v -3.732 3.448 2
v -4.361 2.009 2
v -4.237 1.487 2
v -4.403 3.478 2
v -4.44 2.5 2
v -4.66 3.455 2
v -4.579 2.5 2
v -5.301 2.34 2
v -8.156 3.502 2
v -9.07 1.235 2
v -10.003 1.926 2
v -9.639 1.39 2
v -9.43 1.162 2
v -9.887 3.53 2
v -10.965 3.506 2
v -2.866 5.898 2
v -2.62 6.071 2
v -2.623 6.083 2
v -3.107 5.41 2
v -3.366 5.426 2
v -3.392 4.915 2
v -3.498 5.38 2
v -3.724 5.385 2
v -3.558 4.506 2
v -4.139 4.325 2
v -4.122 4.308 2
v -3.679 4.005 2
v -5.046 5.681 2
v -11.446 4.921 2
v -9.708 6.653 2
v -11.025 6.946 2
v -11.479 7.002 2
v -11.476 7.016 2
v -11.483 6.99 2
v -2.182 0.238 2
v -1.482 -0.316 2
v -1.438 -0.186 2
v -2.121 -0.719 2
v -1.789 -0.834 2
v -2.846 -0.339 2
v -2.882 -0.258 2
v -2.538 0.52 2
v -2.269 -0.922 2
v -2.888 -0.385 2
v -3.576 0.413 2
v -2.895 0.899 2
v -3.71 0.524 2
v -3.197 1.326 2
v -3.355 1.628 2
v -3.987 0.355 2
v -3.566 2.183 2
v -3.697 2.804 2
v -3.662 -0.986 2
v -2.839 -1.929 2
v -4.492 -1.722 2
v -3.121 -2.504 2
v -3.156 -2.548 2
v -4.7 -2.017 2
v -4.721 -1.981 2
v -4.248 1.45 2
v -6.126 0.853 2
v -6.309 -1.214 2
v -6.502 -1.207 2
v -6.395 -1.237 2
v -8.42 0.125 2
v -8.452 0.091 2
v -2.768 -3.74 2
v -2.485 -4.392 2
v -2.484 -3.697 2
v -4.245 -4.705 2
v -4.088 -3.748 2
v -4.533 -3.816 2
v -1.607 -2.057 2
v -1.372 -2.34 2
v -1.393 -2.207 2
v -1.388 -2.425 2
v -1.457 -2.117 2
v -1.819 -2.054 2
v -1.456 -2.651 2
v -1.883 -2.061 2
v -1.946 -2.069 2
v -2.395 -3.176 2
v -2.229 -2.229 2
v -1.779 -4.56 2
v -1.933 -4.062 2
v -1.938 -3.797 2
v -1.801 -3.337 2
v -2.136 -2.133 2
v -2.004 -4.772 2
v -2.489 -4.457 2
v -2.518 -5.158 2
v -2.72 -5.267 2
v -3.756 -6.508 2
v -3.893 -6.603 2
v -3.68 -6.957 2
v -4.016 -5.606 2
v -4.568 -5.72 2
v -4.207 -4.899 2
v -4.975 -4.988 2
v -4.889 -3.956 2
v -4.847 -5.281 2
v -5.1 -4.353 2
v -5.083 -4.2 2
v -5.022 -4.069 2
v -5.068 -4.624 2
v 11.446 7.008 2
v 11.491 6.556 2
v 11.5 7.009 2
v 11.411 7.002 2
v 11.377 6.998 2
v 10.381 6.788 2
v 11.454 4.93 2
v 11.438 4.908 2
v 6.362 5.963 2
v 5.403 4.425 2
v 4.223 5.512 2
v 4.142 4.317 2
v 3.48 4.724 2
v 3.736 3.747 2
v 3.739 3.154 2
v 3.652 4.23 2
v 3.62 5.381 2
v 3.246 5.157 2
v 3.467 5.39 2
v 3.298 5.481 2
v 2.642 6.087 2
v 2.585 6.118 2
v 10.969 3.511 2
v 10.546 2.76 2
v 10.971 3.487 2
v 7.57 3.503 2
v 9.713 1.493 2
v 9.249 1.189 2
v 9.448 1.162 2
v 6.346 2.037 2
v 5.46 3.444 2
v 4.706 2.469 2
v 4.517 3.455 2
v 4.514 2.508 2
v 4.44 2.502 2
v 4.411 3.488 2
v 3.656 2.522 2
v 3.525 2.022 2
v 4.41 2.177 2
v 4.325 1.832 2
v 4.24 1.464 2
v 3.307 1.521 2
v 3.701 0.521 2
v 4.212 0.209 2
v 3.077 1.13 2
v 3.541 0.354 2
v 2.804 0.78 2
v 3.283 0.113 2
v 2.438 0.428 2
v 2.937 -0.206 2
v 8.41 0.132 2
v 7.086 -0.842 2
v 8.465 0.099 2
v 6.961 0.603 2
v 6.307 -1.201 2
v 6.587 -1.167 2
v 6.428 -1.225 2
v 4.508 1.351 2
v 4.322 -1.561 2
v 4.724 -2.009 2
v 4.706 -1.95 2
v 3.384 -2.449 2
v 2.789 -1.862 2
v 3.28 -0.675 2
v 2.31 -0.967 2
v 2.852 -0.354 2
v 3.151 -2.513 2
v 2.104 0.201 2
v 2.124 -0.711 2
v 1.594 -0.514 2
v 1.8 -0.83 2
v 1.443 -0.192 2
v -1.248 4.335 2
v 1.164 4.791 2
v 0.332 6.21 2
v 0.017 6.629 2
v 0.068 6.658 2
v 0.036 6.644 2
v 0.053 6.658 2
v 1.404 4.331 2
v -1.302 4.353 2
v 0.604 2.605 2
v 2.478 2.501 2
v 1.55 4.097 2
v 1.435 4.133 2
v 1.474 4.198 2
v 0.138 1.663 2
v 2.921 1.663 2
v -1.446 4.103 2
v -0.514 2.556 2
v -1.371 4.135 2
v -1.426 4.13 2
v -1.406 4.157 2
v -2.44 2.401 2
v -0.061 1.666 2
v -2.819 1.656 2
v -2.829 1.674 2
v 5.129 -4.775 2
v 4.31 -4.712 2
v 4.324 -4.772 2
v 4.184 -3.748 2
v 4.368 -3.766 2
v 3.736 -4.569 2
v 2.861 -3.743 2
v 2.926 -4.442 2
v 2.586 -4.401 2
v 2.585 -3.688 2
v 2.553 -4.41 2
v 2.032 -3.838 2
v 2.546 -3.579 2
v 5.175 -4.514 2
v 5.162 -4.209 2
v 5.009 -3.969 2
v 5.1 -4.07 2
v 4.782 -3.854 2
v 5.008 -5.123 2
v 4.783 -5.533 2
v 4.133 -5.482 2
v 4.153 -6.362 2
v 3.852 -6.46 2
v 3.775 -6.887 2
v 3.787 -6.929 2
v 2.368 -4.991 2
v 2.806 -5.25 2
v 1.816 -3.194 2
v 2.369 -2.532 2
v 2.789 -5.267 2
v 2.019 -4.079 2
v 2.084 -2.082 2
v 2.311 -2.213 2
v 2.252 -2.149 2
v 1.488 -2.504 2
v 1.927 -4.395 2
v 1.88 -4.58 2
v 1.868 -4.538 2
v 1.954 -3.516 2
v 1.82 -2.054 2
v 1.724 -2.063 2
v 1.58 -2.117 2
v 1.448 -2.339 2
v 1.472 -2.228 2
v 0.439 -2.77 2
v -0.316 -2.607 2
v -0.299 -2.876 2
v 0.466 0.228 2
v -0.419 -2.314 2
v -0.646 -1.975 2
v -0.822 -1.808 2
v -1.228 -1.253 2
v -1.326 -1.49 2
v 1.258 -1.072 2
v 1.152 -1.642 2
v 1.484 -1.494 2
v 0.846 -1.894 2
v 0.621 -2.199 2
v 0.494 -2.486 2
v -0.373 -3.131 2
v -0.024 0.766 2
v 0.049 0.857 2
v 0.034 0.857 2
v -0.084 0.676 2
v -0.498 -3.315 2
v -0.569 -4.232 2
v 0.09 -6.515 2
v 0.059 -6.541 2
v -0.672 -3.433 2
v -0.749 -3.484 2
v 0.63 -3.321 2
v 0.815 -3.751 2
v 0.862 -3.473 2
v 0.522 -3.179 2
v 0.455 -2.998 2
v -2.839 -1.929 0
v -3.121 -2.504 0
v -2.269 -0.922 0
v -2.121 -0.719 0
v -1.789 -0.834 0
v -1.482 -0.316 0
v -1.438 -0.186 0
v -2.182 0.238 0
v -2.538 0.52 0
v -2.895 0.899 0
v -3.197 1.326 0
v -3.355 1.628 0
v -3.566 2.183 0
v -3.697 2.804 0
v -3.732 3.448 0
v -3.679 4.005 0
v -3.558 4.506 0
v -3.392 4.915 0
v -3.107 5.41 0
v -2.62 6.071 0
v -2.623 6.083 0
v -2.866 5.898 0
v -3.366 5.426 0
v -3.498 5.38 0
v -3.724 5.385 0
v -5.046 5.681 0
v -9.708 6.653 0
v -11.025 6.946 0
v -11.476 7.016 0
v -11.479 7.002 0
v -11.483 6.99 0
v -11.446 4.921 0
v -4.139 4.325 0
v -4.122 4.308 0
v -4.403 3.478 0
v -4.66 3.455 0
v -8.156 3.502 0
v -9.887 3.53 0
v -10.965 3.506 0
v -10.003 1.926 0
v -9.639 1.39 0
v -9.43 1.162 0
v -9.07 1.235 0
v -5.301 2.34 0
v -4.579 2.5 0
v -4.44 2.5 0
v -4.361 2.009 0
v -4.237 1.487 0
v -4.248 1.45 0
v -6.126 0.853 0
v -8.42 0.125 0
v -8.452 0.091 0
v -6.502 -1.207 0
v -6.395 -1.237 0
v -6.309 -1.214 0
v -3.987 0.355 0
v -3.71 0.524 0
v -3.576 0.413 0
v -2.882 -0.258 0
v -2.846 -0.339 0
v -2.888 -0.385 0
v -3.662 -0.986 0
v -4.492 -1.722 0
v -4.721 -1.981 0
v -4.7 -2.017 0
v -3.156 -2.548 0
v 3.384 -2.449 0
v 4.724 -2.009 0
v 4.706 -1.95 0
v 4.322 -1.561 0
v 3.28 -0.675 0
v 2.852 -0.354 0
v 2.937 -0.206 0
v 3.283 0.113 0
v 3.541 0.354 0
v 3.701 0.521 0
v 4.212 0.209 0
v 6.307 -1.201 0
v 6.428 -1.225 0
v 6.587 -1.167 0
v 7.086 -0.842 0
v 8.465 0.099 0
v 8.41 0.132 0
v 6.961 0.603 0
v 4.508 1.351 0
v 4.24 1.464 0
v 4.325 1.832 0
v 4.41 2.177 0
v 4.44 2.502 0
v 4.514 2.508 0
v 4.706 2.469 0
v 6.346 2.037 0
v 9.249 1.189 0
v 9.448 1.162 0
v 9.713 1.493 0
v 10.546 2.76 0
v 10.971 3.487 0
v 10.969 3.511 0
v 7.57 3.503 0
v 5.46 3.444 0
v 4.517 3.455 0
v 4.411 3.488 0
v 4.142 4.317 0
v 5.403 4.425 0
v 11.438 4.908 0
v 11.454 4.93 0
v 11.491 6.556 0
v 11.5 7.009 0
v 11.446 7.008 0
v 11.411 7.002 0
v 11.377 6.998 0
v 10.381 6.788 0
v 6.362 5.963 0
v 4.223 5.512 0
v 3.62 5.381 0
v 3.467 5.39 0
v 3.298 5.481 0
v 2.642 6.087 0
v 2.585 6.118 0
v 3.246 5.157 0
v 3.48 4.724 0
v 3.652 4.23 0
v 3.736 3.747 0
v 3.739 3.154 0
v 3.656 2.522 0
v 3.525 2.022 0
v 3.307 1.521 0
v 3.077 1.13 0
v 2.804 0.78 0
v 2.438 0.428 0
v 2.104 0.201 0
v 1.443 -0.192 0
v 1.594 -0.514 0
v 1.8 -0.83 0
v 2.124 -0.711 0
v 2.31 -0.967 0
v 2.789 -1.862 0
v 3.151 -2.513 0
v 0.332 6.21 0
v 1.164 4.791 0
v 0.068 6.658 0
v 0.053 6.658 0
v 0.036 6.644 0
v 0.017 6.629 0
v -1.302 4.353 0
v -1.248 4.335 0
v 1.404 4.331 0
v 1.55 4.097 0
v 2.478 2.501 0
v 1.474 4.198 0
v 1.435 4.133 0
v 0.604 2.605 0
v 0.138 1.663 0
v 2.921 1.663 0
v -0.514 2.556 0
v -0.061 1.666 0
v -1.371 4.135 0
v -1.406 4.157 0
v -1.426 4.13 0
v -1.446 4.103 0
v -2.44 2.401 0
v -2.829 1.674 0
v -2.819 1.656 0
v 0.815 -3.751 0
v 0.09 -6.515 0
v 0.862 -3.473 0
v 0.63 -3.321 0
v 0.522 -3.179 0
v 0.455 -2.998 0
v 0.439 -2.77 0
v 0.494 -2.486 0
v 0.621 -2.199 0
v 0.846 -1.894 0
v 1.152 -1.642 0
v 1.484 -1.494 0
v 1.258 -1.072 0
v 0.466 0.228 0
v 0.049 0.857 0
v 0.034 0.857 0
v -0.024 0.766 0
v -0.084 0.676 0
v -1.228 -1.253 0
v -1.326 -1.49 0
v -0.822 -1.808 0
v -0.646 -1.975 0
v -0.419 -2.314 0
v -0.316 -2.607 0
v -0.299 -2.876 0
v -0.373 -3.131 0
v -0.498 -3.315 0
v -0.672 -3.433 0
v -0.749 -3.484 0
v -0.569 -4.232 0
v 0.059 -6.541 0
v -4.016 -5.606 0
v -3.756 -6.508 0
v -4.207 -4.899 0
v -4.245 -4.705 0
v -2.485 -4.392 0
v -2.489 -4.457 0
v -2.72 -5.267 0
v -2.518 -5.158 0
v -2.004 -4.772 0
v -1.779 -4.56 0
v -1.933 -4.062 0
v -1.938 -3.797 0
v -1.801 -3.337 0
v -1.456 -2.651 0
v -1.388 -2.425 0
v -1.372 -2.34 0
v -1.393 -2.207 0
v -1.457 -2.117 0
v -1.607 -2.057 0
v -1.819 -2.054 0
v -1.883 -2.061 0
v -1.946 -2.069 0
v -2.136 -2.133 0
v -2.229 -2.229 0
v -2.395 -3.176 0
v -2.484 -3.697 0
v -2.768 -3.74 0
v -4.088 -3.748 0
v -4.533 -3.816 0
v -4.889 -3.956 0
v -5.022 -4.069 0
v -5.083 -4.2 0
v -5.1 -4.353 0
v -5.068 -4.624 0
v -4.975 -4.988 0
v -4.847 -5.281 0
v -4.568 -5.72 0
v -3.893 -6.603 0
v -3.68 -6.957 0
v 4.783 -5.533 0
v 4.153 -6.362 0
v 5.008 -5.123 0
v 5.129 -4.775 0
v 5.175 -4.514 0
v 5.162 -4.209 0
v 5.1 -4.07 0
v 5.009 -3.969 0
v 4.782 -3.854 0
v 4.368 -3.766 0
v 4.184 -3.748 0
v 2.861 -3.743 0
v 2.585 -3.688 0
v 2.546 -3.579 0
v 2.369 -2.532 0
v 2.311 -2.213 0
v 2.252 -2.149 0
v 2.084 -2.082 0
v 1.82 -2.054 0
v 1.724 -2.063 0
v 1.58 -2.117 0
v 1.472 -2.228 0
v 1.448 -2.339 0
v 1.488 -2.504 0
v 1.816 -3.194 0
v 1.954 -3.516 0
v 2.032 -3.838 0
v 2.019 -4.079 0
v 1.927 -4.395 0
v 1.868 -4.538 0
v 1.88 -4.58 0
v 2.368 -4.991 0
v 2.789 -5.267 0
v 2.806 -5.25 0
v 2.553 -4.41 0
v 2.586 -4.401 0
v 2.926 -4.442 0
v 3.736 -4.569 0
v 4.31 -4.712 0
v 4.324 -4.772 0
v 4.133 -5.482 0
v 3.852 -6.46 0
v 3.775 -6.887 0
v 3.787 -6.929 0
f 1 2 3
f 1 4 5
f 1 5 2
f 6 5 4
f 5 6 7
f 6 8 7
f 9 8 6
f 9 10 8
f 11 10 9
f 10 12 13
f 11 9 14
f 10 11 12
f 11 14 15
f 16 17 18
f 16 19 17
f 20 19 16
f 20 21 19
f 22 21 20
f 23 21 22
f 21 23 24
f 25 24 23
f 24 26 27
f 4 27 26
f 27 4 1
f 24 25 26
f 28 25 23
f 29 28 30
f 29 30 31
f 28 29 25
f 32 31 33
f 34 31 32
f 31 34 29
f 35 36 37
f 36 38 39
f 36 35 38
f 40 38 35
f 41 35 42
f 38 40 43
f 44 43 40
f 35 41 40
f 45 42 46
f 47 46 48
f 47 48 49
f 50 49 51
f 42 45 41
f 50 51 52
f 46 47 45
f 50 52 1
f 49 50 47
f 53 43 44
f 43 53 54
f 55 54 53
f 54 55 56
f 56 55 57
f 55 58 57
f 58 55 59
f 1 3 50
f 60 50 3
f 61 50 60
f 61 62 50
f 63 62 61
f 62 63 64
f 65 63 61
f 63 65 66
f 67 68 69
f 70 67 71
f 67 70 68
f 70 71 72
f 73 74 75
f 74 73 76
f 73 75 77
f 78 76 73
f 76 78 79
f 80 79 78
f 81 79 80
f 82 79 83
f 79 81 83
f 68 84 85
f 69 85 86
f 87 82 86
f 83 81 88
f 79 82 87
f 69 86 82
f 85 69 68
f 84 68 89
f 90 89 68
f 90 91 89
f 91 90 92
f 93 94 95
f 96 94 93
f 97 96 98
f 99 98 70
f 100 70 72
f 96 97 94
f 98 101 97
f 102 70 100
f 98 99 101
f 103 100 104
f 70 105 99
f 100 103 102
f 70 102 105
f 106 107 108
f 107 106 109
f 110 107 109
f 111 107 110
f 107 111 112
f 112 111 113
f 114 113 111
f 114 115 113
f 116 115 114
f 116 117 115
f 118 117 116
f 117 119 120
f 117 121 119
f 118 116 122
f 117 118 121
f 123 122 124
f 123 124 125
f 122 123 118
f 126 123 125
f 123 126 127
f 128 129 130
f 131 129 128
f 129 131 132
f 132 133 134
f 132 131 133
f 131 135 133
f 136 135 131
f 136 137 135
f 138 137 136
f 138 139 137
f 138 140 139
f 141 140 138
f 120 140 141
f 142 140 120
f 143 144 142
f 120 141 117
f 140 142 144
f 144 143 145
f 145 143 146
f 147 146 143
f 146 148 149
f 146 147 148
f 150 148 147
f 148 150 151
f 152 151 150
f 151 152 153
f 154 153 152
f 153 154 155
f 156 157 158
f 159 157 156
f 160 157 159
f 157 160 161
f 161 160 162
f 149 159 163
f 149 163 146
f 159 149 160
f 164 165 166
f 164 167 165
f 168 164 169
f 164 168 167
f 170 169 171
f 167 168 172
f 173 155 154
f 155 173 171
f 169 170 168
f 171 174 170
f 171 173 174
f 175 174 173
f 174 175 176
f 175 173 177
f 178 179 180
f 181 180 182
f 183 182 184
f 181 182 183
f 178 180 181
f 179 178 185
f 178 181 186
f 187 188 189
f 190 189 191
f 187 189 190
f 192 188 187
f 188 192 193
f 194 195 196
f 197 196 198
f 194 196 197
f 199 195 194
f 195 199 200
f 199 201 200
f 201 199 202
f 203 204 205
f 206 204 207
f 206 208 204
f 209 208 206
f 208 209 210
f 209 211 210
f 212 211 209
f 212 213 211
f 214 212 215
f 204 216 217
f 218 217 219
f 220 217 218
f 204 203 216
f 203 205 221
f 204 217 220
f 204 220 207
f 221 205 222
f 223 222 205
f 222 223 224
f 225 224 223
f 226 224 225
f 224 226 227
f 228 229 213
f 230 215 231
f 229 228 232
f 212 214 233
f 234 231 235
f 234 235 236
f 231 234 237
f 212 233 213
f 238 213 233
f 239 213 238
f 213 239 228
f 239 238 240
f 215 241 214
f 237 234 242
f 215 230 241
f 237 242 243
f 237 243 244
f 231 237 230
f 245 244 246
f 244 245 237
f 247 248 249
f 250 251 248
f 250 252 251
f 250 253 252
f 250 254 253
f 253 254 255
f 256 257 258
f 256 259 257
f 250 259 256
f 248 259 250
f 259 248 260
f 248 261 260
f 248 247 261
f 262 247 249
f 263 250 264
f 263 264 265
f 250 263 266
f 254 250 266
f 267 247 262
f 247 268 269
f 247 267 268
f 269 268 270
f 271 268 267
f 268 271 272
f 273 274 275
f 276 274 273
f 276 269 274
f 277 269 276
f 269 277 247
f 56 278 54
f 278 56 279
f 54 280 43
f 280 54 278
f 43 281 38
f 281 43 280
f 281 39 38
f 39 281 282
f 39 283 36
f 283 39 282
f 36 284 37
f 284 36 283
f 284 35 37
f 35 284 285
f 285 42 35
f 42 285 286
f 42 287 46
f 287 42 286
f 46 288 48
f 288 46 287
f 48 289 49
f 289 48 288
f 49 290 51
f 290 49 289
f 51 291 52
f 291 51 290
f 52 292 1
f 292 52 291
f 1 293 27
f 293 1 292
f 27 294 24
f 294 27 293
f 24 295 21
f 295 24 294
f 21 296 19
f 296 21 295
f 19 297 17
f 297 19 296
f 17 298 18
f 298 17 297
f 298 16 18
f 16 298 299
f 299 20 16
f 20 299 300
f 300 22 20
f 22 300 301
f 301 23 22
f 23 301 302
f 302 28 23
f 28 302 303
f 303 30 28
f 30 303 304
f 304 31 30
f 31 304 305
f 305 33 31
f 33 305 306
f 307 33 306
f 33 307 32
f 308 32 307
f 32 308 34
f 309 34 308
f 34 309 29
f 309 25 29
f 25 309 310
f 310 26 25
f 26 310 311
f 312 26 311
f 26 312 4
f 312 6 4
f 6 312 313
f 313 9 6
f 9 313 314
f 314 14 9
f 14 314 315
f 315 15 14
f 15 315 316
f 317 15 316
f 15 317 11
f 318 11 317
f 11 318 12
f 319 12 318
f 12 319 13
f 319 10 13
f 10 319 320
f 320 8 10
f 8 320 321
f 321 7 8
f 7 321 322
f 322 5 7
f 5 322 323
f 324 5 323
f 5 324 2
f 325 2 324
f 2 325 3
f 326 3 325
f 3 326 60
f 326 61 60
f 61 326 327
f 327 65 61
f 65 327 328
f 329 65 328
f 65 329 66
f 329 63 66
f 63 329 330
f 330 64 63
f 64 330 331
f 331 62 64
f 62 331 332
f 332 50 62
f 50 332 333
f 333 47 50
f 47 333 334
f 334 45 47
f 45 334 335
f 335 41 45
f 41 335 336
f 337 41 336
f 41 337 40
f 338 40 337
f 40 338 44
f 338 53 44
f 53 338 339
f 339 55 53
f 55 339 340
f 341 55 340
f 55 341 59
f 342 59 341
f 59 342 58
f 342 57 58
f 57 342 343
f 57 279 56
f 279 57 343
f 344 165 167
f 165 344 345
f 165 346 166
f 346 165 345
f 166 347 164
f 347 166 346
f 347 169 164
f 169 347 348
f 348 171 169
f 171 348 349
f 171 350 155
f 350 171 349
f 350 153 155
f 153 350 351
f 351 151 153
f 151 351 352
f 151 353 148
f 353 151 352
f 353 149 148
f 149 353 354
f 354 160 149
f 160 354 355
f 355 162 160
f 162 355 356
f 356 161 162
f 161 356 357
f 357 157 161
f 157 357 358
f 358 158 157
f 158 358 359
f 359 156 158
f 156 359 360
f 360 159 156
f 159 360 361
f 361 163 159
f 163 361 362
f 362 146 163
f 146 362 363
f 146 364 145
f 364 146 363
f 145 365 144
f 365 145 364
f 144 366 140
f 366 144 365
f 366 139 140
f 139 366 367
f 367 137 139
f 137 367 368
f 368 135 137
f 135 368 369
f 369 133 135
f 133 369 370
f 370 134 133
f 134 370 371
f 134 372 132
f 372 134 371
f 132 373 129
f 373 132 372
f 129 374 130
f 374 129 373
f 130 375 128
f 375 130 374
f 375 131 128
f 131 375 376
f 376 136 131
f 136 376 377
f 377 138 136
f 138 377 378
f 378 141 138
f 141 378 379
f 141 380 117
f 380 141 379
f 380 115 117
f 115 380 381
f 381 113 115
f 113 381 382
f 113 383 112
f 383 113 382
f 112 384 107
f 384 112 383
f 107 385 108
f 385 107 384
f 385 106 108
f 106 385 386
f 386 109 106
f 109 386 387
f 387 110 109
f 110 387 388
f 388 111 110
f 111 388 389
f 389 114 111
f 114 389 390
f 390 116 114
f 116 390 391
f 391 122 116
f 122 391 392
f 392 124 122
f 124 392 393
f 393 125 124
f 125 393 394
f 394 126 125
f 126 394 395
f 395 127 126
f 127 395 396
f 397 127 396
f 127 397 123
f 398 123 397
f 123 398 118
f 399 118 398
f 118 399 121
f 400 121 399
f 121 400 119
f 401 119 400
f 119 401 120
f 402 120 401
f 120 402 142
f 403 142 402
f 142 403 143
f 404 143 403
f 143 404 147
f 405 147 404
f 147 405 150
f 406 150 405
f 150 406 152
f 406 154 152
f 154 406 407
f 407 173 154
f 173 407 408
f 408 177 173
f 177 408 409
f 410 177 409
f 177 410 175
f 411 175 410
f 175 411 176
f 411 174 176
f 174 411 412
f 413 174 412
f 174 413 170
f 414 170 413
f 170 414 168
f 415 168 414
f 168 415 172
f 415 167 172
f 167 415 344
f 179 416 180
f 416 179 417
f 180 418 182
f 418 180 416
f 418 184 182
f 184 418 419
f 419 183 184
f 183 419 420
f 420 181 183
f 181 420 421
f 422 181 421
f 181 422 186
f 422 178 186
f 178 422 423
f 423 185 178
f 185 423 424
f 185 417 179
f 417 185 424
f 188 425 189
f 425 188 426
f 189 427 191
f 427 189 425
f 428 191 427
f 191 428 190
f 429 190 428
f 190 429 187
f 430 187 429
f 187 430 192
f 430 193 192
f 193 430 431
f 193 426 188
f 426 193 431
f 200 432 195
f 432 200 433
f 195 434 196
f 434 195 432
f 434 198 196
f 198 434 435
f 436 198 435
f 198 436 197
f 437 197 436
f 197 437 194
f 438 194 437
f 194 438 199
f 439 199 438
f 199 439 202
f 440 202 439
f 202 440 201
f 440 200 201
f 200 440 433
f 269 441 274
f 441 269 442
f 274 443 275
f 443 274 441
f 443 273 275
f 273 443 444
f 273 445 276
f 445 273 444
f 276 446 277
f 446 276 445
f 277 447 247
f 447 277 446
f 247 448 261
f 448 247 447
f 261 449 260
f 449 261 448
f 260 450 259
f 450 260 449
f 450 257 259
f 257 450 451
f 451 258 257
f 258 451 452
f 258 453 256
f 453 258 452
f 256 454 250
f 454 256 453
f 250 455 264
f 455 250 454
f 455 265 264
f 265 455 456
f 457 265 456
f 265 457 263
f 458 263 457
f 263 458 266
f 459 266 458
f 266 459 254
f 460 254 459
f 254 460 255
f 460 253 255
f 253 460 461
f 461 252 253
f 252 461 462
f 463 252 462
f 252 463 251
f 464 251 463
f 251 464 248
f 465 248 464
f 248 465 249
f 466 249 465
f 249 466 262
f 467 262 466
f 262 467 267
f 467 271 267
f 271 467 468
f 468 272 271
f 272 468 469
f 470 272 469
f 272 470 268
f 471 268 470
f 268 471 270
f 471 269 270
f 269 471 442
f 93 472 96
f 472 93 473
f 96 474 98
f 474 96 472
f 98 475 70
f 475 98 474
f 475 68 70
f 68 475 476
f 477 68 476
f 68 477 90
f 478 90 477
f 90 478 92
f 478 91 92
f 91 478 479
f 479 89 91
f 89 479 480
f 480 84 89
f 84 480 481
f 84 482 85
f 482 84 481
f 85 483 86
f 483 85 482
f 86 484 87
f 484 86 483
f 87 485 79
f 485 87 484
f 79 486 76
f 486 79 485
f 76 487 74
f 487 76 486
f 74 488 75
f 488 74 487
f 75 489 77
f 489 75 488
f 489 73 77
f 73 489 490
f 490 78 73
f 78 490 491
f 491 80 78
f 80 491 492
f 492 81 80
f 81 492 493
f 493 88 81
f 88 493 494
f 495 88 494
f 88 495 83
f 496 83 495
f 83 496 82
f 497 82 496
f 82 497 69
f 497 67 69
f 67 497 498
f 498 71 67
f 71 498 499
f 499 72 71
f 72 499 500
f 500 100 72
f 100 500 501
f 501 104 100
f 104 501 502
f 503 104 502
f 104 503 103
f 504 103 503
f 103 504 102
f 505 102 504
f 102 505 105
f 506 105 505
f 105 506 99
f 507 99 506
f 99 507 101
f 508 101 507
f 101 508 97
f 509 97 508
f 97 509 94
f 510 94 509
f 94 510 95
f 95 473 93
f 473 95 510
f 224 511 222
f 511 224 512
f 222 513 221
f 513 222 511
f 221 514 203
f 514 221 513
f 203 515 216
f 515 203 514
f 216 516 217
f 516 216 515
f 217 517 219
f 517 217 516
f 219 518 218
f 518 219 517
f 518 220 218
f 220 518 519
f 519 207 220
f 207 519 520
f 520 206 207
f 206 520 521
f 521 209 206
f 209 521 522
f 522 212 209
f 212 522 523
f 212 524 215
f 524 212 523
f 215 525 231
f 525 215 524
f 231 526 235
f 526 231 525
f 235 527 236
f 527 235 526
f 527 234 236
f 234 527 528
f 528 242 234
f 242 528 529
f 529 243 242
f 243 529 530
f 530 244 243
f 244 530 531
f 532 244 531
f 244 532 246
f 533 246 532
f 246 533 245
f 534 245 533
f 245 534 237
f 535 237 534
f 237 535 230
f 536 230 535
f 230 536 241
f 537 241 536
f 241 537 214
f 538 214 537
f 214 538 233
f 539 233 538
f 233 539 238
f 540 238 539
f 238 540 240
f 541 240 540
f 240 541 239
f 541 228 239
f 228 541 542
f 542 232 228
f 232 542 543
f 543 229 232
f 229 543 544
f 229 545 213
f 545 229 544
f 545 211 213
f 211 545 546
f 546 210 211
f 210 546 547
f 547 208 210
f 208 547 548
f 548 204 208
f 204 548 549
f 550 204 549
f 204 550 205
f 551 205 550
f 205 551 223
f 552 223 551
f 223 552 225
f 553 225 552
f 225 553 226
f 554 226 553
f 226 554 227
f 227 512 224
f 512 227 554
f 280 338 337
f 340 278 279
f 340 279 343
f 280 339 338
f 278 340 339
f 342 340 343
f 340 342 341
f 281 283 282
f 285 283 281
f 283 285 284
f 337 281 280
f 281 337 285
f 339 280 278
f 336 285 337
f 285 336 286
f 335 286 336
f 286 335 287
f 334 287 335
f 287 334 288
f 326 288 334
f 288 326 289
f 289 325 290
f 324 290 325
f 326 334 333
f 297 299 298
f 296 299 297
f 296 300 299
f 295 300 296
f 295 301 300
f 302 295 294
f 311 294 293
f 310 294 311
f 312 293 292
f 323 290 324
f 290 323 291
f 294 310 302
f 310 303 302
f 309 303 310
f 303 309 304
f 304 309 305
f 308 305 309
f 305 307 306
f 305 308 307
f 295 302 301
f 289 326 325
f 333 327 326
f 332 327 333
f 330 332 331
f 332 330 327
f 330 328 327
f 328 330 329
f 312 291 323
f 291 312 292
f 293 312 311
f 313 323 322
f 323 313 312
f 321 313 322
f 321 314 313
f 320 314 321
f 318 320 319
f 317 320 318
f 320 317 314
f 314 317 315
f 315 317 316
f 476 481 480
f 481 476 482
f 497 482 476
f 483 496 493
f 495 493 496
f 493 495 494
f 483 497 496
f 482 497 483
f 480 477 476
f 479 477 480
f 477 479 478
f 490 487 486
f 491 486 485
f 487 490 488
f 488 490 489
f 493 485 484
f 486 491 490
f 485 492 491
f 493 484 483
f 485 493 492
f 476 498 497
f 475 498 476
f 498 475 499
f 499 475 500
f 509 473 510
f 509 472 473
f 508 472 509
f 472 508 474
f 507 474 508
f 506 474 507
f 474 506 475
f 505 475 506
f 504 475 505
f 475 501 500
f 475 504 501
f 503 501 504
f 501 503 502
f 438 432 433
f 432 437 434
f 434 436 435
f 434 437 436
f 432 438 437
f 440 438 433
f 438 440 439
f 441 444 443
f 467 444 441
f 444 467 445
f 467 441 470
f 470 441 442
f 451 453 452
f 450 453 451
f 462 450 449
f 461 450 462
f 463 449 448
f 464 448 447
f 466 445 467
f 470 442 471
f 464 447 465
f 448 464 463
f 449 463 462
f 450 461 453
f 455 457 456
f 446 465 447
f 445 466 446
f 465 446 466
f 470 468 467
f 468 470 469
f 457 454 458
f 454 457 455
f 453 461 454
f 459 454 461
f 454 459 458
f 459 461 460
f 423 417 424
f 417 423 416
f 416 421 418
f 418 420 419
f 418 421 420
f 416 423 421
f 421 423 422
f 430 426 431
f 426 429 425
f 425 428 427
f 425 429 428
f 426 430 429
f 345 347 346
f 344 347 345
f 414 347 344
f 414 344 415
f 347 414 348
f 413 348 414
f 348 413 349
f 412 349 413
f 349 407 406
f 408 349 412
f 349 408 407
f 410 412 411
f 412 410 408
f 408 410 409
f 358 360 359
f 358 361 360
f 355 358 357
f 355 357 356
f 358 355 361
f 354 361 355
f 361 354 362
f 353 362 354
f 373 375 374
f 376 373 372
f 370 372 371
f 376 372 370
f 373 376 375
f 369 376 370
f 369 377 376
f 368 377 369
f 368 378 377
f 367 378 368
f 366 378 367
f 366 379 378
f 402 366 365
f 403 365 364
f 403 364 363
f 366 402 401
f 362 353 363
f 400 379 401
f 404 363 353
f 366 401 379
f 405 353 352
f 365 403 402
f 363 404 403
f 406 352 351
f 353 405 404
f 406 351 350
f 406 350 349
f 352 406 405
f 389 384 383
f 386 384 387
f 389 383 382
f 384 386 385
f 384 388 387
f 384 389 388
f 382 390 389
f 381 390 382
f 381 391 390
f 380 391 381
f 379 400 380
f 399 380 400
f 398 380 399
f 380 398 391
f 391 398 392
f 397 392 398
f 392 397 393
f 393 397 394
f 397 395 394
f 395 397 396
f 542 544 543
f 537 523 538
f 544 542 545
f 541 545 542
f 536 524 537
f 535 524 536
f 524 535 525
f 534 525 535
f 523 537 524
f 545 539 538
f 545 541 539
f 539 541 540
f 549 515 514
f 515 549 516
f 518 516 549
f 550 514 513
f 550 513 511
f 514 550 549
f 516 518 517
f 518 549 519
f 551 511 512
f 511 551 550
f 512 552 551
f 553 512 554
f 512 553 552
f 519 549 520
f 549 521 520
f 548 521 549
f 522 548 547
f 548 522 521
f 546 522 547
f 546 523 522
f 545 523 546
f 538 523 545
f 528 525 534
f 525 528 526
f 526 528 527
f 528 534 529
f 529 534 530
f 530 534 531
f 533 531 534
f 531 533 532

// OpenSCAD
module b24259943017348569b52e0f846f9c78_1()
{
 /* Generated by trace2scad version 20150415
    http://aggregate.org/MAKE/TRACE2SCAD/
    Optimized model has 279/3844 original points
 */
 color([0.48, 0.48, 0.48])
 assign(minx=0) /* polygon minx=15 */
 assign(miny=0) /* polygon miny=75 */
 assign(maxx=20000) /* polygon maxx=20000 */
 assign(maxy=12250) /* polygon maxy=12226 */
 assign(dx=maxx-minx)
 assign(dy=maxy-miny)
 assign(maxd=((dx>dy)?dx:dy))
 scale([1/maxd, 1/maxd, 1])
 translate([-minx-dx/2, -miny-dy/2, 0])
 linear_extrude(height=1, convexity=279)
 union() {
  union() {
   polygon([[18,12214],[15,12203],[47,10404],[6401,9886],[6416,9871],[6171,9149],[5948,9129],[2908,9170],[1403,9195],[465,9174],[1302,7800],[1618,7334],[1800,7135],[2113,7199],[5390,8160],[6018,8299],[6139,8299],[6208,7872],[6316,7418],[6306,7386],[4673,6867],[2678,6234],[2650,6204],[4346,5075],[4439,5049],[4514,5069],[6533,6434],[6774,6581],[6890,6484],[7494,5901],[7525,5830],[7489,5790],[6816,5268],[6094,4628],[5895,4402],[5913,4371],[7256,3909],[7286,3948],[7531,4448],[8027,5323],[8156,5500],[8444,5400],[8711,5850],[8750,5963],[8103,6332],[7793,6577],[7483,6907],[7220,7278],[7083,7541],[6899,8023],[6785,8563],[6755,9123],[6801,9608],[6906,10043],[7050,10399],[7298,10829],[7722,11404],[7719,11415],[7508,11254],[7073,10843],[6958,10803],[6762,10808],[5612,11065],[1558,11910],[413,12165],[21,12226]], convexity=24);
   polygon([[19923,12214],[19893,12210],[19027,12028],[15532,11310],[13672,10918],[13148,10804],[13015,10812],[12868,10891],[12297,11418],[12248,11445],[12823,10609],[13026,10233],[13176,9803],[13249,9383],[13251,8868],[13179,8318],[13065,7883],[12876,7448],[12676,7108],[12438,6803],[12120,6497],[11830,6300],[11255,5958],[11386,5678],[11565,5403],[11847,5507],[12009,5284],[12425,4506],[12740,3940],[12943,3995],[14108,4378],[14092,4429],[13758,4768],[12852,5538],[12480,5817],[12554,5946],[12855,6223],[13079,6433],[13218,6578],[13663,6307],[15484,5081],[15590,5060],[15728,5110],[16162,5393],[17361,6211],[17313,6240],[16053,6649],[13920,7300],[13687,7398],[13761,7718],[13835,8018],[13861,8301],[13925,8306],[14092,8272],[15518,7896],[18043,7159],[18216,7135],[18446,7423],[19170,8525],[19540,9157],[19538,9178],[16583,9171],[14748,9120],[13928,9129],[13836,9158],[13602,9879],[14698,9973],[19946,10393],[19960,10412],[19992,11826],[20000,12220],[19953,12219]], convexity=23);
   polygon([[10031,11902],[10015,11889],[8868,9910],[8915,9895],[11221,9891],[11012,10291],[10289,11525],[10059,11915],[10046,11915]], convexity=5);
   polygon([[11265,9747],[11248,9719],[10525,8390],[10120,7571],[12540,7571],[12155,8300],[11348,9688],[11282,9775]], convexity=5);
   polygon([[8760,9716],[8743,9693],[7878,8213],[7540,7581],[7549,7565],[9947,7574],[9553,8348],[8808,9721],[8777,9740]], convexity=6);
   polygon([[9979,6791],[9927,6713],[8932,5035],[8847,4829],[9285,4553],[9438,4408],[9636,4113],[9725,3858],[9740,3624],[9676,3402],[9567,3242],[9416,3140],[9349,3095],[9505,2445],[10051,437],[10078,460],[10709,2863],[10750,3105],[10548,3237],[10454,3361],[10396,3518],[10382,3716],[10430,3963],[10540,4213],[10736,4478],[11002,4697],[11290,4826],[11094,5193],[10405,6323],[10043,6870],[10030,6870]], convexity=10);
   polygon([[8363,4333],[8308,4326],[8143,4270],[8062,4187],[7917,3363],[7840,2910],[7593,2873],[6445,2866],[6058,2807],[5749,2685],[5633,2587],[5580,2473],[5565,2340],[5593,2104],[5674,1788],[5785,1533],[6028,1151],[6615,383],[6800,75],[6734,466],[6508,1250],[6342,1865],[6309,2034],[7839,2306],[7836,2249],[7635,1545],[7810,1640],[8257,1975],[8453,2160],[8319,2593],[8315,2823],[8434,3223],[8734,3820],[8793,4016],[8807,4090],[8789,4206],[8733,4284],[8603,4336],[8418,4339]], convexity=11);
   polygon([[11541,4335],[11499,4331],[11374,4284],[11280,4188],[11259,4091],[11294,3948],[11579,3348],[11699,3068],[11767,2788],[11756,2578],[11676,2303],[11624,2179],[11635,2142],[12059,1785],[12425,1545],[12440,1560],[12220,2290],[12249,2298],[12544,2262],[13249,2152],[13748,2028],[13760,1975],[13594,1358],[13350,508],[13283,136],[13293,100],[13611,593],[14159,1314],[14355,1670],[14460,1973],[14500,2200],[14489,2465],[14435,2586],[14356,2674],[14158,2774],[13798,2850],[13638,2866],[12488,2870],[12248,2918],[12214,3013],[12060,3923],[12010,4201],[11958,4256],[11812,4315],[11583,4339]], convexity=14);
  }
 }
}

module b24259943017348569b52e0f846f9c78()
{
 /* all layers combined, scaled to within a 1mm cube */
 scale([1, 1, 1/1])
 difference() {
  union() {
   scale([1,1,2]) translate([0,0,-0.5]) b24259943017348569b52e0f846f9c78_1();
  }
  translate([0,0,-2]) cube([2,2,4],center=true);
 }
}

scale([23, 23, 2]) {
	b24259943017348569b52e0f846f9c78();
}
